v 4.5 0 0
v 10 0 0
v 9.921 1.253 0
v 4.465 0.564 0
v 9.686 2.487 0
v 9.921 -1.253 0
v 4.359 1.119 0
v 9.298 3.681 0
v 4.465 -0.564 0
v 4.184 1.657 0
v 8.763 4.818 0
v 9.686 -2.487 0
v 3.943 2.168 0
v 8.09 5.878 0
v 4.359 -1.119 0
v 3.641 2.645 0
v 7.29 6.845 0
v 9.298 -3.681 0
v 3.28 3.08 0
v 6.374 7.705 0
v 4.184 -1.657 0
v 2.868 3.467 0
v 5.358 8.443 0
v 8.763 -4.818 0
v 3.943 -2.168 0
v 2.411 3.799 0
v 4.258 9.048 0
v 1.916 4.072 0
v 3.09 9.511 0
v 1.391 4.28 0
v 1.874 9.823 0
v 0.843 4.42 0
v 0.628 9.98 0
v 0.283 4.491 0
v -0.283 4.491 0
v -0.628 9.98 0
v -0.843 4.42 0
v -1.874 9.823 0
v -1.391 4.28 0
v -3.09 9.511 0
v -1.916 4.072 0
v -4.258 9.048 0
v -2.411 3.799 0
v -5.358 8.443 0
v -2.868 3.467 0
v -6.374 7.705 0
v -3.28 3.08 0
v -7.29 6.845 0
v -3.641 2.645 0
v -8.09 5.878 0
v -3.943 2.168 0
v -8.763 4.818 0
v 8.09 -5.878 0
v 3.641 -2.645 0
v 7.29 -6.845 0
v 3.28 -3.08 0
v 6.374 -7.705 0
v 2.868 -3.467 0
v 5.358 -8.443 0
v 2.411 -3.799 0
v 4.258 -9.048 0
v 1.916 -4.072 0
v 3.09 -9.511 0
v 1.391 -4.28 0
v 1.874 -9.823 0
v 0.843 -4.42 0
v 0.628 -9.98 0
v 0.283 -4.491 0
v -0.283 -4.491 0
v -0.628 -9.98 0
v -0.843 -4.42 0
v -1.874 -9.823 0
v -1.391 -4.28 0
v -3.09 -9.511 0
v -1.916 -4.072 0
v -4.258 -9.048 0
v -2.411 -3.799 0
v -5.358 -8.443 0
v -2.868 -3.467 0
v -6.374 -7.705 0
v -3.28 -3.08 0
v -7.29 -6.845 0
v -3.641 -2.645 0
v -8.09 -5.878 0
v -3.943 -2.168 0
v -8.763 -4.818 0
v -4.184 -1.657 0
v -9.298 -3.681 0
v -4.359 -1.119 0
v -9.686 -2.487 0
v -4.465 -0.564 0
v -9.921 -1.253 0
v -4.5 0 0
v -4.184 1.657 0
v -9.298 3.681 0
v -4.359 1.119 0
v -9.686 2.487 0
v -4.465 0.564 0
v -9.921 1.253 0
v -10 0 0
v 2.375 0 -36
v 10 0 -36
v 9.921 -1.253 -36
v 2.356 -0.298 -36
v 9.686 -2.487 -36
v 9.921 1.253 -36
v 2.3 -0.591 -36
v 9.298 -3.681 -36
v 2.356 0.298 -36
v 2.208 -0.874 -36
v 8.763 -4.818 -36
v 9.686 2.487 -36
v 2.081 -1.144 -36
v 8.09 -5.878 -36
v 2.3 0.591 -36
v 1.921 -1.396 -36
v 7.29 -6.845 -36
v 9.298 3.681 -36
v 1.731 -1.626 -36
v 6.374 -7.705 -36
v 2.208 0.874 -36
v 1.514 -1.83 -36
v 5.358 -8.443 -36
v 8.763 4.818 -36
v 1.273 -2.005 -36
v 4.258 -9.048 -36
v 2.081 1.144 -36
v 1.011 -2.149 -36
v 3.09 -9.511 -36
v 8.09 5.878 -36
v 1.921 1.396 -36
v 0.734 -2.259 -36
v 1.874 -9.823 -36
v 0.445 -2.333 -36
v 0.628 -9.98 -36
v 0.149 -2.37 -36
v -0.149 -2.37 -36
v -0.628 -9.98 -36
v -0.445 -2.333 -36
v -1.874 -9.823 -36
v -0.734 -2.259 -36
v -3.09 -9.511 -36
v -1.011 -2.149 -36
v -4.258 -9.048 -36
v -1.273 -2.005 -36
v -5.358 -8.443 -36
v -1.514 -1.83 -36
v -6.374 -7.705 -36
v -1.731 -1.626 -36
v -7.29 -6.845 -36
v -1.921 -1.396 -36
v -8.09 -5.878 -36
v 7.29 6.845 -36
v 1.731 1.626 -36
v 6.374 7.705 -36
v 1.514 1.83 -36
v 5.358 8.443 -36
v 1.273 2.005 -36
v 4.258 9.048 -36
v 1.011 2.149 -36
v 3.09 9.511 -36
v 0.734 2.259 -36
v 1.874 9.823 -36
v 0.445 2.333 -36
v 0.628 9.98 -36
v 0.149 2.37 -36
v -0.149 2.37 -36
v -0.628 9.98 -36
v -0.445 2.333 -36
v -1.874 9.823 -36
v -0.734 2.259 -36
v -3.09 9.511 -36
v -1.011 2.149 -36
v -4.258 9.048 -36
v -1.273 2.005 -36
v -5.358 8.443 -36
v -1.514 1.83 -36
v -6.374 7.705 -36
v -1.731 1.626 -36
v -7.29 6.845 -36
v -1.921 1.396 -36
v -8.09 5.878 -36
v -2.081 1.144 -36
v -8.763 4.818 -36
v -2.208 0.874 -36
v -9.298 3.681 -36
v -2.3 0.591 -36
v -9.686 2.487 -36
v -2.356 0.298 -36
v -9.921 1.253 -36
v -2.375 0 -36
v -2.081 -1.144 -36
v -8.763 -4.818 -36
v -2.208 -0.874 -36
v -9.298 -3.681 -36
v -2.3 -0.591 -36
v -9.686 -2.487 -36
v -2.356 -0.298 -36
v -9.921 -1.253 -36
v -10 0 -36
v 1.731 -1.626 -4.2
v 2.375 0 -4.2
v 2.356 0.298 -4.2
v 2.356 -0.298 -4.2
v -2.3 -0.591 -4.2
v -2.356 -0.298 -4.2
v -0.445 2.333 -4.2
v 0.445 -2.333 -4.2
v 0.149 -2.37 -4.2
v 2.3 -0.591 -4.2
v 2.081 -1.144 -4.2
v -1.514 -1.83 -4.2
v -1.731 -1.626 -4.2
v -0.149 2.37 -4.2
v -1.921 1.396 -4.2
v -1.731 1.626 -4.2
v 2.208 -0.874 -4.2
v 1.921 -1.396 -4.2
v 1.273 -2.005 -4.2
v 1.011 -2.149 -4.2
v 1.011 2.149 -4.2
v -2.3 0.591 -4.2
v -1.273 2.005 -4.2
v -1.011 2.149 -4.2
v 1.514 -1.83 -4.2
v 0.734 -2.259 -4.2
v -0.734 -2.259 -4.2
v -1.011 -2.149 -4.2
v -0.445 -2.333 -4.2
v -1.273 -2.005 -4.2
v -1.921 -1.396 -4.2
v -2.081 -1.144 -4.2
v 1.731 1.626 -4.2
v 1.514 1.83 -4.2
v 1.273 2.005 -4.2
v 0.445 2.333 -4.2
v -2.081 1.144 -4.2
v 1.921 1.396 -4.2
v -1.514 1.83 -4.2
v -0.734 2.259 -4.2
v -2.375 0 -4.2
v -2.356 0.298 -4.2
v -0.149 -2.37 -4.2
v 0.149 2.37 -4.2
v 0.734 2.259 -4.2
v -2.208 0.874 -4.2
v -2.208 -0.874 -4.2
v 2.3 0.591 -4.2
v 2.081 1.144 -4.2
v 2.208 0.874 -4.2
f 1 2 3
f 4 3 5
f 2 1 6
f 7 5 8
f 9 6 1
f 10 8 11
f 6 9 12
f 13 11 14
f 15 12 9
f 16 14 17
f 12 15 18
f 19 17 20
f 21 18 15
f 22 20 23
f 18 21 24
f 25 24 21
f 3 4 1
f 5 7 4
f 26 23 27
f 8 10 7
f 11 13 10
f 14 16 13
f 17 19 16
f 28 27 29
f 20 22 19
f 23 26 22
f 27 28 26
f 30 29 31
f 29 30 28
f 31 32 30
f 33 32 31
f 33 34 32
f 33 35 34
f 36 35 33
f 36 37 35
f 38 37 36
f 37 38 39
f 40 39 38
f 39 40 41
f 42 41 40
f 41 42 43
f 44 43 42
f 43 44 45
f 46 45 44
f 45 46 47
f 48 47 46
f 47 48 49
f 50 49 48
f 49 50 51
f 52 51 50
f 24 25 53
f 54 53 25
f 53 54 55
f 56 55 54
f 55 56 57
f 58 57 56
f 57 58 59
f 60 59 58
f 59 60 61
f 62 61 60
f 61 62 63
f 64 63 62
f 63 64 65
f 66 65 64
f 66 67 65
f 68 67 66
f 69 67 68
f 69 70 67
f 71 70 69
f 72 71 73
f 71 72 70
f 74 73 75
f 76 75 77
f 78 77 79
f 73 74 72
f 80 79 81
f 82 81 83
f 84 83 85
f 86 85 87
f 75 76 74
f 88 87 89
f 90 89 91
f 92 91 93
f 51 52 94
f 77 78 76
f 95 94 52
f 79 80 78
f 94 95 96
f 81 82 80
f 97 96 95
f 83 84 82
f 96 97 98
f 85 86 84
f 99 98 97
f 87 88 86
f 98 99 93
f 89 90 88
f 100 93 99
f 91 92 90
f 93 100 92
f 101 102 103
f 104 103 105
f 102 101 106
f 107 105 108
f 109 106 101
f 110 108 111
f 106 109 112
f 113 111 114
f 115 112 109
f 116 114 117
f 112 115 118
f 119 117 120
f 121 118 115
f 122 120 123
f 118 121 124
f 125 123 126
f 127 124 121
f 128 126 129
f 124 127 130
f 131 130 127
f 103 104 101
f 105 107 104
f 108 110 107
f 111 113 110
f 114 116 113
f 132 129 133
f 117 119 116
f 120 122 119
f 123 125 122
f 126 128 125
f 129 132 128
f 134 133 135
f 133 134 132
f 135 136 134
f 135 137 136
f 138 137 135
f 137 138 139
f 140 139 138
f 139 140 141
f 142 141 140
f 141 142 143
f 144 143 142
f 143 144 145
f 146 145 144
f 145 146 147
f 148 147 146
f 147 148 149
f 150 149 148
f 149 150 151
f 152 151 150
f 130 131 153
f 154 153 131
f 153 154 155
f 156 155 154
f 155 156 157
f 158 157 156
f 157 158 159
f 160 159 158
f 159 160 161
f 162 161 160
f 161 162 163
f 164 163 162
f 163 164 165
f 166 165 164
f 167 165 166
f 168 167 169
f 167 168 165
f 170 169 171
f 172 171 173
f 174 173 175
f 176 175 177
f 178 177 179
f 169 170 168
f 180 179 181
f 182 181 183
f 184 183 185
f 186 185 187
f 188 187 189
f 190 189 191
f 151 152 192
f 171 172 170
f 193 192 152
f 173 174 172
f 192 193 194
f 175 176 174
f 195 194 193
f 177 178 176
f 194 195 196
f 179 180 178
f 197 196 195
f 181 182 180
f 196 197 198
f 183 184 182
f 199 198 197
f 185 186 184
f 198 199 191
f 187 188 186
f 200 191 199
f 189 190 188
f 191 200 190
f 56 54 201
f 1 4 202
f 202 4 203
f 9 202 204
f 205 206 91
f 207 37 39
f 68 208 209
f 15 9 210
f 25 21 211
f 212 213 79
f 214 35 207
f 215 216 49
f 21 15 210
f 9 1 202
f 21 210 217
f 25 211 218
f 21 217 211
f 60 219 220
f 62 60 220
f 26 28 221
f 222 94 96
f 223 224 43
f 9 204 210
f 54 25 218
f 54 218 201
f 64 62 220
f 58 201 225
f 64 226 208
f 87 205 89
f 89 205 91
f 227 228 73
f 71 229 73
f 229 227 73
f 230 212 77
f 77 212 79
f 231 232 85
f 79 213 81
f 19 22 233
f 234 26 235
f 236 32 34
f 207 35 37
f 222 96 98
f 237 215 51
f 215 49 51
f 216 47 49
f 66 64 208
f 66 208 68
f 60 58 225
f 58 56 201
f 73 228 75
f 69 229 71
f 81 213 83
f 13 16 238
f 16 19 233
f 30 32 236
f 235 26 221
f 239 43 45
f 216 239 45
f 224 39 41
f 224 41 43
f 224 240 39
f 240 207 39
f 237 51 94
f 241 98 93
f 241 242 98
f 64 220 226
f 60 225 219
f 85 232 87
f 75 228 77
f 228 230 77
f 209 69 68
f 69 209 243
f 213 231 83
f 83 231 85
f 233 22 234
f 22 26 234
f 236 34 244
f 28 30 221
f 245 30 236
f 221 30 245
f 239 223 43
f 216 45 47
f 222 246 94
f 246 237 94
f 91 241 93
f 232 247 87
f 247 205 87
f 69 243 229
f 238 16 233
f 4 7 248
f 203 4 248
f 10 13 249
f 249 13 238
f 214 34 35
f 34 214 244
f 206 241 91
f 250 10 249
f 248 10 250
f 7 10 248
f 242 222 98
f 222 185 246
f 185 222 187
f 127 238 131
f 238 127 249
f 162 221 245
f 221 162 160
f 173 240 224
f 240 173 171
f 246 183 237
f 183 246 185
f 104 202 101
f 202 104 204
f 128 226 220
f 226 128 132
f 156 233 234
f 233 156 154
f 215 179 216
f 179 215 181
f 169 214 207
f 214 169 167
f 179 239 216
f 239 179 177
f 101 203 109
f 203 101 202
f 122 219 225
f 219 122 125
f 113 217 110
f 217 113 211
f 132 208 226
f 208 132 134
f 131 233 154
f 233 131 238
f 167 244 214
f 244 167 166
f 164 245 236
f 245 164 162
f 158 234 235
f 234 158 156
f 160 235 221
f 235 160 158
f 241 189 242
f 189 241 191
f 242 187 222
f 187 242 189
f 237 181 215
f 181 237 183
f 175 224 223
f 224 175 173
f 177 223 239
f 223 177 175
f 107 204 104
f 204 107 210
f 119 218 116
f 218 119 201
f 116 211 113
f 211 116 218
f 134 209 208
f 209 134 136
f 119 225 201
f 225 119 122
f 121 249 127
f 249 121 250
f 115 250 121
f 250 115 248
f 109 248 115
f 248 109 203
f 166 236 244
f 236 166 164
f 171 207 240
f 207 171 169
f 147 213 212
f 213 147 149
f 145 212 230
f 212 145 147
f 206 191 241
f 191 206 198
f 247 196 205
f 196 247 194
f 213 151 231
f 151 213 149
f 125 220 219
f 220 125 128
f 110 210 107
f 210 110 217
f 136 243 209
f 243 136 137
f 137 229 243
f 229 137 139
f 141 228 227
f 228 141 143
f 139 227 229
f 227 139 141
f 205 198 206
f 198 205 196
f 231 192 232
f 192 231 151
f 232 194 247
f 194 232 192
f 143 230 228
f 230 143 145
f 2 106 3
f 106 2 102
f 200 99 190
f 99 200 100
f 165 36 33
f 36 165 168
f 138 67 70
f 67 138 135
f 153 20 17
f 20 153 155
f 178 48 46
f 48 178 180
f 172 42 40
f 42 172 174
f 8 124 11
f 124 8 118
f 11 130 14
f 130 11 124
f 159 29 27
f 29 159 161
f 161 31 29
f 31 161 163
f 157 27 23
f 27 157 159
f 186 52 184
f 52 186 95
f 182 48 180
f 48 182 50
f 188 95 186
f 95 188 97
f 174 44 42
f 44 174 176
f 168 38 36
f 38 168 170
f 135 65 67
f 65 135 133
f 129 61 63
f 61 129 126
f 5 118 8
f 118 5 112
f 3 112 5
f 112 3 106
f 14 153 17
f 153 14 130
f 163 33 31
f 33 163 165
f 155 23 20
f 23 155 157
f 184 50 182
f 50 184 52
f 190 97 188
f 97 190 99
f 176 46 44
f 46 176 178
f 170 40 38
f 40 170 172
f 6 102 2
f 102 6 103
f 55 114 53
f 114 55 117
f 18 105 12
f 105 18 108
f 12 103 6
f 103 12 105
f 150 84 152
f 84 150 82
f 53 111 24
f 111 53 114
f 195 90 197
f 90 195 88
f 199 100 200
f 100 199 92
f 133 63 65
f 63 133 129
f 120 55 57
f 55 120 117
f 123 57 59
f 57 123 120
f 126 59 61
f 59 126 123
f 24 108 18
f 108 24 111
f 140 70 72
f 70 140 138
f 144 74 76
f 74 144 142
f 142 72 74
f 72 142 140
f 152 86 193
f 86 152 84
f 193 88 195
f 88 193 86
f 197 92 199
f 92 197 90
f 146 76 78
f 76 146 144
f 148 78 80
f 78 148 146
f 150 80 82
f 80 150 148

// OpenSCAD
$fn = 50;


difference() {
	union() {
		translate(v = [0, 0, -36.0000000000]) {
			cylinder(h = 36, r = 10.0000000000);
		}
	}
	union() {
		translate(v = [0, 0, 0]) {
			rotate(a = [0, 0, 0]) {
				difference() {
					union() {
						#translate(v = [0, 0, -36.0000000000]) {
							cylinder(h = 36, r = 2.2500000000);
						}
						#translate(v = [0, 0, -4.2000000000]) {
							cylinder(h = 4.2000000000, r = 10.0000000000, r1 = 2.3750000000, r2 = 4.5000000000);
						}
						#translate(v = [0, 0, -36.0000000000]) {
							cylinder(h = 36, r = 2.3750000000);
						}
						#translate(v = [0, 0, -36.0000000000]) {
							cylinder(h = 36, r = 2.2500000000);
						}
					}
					union();
				}
			}
		}
	}
}
